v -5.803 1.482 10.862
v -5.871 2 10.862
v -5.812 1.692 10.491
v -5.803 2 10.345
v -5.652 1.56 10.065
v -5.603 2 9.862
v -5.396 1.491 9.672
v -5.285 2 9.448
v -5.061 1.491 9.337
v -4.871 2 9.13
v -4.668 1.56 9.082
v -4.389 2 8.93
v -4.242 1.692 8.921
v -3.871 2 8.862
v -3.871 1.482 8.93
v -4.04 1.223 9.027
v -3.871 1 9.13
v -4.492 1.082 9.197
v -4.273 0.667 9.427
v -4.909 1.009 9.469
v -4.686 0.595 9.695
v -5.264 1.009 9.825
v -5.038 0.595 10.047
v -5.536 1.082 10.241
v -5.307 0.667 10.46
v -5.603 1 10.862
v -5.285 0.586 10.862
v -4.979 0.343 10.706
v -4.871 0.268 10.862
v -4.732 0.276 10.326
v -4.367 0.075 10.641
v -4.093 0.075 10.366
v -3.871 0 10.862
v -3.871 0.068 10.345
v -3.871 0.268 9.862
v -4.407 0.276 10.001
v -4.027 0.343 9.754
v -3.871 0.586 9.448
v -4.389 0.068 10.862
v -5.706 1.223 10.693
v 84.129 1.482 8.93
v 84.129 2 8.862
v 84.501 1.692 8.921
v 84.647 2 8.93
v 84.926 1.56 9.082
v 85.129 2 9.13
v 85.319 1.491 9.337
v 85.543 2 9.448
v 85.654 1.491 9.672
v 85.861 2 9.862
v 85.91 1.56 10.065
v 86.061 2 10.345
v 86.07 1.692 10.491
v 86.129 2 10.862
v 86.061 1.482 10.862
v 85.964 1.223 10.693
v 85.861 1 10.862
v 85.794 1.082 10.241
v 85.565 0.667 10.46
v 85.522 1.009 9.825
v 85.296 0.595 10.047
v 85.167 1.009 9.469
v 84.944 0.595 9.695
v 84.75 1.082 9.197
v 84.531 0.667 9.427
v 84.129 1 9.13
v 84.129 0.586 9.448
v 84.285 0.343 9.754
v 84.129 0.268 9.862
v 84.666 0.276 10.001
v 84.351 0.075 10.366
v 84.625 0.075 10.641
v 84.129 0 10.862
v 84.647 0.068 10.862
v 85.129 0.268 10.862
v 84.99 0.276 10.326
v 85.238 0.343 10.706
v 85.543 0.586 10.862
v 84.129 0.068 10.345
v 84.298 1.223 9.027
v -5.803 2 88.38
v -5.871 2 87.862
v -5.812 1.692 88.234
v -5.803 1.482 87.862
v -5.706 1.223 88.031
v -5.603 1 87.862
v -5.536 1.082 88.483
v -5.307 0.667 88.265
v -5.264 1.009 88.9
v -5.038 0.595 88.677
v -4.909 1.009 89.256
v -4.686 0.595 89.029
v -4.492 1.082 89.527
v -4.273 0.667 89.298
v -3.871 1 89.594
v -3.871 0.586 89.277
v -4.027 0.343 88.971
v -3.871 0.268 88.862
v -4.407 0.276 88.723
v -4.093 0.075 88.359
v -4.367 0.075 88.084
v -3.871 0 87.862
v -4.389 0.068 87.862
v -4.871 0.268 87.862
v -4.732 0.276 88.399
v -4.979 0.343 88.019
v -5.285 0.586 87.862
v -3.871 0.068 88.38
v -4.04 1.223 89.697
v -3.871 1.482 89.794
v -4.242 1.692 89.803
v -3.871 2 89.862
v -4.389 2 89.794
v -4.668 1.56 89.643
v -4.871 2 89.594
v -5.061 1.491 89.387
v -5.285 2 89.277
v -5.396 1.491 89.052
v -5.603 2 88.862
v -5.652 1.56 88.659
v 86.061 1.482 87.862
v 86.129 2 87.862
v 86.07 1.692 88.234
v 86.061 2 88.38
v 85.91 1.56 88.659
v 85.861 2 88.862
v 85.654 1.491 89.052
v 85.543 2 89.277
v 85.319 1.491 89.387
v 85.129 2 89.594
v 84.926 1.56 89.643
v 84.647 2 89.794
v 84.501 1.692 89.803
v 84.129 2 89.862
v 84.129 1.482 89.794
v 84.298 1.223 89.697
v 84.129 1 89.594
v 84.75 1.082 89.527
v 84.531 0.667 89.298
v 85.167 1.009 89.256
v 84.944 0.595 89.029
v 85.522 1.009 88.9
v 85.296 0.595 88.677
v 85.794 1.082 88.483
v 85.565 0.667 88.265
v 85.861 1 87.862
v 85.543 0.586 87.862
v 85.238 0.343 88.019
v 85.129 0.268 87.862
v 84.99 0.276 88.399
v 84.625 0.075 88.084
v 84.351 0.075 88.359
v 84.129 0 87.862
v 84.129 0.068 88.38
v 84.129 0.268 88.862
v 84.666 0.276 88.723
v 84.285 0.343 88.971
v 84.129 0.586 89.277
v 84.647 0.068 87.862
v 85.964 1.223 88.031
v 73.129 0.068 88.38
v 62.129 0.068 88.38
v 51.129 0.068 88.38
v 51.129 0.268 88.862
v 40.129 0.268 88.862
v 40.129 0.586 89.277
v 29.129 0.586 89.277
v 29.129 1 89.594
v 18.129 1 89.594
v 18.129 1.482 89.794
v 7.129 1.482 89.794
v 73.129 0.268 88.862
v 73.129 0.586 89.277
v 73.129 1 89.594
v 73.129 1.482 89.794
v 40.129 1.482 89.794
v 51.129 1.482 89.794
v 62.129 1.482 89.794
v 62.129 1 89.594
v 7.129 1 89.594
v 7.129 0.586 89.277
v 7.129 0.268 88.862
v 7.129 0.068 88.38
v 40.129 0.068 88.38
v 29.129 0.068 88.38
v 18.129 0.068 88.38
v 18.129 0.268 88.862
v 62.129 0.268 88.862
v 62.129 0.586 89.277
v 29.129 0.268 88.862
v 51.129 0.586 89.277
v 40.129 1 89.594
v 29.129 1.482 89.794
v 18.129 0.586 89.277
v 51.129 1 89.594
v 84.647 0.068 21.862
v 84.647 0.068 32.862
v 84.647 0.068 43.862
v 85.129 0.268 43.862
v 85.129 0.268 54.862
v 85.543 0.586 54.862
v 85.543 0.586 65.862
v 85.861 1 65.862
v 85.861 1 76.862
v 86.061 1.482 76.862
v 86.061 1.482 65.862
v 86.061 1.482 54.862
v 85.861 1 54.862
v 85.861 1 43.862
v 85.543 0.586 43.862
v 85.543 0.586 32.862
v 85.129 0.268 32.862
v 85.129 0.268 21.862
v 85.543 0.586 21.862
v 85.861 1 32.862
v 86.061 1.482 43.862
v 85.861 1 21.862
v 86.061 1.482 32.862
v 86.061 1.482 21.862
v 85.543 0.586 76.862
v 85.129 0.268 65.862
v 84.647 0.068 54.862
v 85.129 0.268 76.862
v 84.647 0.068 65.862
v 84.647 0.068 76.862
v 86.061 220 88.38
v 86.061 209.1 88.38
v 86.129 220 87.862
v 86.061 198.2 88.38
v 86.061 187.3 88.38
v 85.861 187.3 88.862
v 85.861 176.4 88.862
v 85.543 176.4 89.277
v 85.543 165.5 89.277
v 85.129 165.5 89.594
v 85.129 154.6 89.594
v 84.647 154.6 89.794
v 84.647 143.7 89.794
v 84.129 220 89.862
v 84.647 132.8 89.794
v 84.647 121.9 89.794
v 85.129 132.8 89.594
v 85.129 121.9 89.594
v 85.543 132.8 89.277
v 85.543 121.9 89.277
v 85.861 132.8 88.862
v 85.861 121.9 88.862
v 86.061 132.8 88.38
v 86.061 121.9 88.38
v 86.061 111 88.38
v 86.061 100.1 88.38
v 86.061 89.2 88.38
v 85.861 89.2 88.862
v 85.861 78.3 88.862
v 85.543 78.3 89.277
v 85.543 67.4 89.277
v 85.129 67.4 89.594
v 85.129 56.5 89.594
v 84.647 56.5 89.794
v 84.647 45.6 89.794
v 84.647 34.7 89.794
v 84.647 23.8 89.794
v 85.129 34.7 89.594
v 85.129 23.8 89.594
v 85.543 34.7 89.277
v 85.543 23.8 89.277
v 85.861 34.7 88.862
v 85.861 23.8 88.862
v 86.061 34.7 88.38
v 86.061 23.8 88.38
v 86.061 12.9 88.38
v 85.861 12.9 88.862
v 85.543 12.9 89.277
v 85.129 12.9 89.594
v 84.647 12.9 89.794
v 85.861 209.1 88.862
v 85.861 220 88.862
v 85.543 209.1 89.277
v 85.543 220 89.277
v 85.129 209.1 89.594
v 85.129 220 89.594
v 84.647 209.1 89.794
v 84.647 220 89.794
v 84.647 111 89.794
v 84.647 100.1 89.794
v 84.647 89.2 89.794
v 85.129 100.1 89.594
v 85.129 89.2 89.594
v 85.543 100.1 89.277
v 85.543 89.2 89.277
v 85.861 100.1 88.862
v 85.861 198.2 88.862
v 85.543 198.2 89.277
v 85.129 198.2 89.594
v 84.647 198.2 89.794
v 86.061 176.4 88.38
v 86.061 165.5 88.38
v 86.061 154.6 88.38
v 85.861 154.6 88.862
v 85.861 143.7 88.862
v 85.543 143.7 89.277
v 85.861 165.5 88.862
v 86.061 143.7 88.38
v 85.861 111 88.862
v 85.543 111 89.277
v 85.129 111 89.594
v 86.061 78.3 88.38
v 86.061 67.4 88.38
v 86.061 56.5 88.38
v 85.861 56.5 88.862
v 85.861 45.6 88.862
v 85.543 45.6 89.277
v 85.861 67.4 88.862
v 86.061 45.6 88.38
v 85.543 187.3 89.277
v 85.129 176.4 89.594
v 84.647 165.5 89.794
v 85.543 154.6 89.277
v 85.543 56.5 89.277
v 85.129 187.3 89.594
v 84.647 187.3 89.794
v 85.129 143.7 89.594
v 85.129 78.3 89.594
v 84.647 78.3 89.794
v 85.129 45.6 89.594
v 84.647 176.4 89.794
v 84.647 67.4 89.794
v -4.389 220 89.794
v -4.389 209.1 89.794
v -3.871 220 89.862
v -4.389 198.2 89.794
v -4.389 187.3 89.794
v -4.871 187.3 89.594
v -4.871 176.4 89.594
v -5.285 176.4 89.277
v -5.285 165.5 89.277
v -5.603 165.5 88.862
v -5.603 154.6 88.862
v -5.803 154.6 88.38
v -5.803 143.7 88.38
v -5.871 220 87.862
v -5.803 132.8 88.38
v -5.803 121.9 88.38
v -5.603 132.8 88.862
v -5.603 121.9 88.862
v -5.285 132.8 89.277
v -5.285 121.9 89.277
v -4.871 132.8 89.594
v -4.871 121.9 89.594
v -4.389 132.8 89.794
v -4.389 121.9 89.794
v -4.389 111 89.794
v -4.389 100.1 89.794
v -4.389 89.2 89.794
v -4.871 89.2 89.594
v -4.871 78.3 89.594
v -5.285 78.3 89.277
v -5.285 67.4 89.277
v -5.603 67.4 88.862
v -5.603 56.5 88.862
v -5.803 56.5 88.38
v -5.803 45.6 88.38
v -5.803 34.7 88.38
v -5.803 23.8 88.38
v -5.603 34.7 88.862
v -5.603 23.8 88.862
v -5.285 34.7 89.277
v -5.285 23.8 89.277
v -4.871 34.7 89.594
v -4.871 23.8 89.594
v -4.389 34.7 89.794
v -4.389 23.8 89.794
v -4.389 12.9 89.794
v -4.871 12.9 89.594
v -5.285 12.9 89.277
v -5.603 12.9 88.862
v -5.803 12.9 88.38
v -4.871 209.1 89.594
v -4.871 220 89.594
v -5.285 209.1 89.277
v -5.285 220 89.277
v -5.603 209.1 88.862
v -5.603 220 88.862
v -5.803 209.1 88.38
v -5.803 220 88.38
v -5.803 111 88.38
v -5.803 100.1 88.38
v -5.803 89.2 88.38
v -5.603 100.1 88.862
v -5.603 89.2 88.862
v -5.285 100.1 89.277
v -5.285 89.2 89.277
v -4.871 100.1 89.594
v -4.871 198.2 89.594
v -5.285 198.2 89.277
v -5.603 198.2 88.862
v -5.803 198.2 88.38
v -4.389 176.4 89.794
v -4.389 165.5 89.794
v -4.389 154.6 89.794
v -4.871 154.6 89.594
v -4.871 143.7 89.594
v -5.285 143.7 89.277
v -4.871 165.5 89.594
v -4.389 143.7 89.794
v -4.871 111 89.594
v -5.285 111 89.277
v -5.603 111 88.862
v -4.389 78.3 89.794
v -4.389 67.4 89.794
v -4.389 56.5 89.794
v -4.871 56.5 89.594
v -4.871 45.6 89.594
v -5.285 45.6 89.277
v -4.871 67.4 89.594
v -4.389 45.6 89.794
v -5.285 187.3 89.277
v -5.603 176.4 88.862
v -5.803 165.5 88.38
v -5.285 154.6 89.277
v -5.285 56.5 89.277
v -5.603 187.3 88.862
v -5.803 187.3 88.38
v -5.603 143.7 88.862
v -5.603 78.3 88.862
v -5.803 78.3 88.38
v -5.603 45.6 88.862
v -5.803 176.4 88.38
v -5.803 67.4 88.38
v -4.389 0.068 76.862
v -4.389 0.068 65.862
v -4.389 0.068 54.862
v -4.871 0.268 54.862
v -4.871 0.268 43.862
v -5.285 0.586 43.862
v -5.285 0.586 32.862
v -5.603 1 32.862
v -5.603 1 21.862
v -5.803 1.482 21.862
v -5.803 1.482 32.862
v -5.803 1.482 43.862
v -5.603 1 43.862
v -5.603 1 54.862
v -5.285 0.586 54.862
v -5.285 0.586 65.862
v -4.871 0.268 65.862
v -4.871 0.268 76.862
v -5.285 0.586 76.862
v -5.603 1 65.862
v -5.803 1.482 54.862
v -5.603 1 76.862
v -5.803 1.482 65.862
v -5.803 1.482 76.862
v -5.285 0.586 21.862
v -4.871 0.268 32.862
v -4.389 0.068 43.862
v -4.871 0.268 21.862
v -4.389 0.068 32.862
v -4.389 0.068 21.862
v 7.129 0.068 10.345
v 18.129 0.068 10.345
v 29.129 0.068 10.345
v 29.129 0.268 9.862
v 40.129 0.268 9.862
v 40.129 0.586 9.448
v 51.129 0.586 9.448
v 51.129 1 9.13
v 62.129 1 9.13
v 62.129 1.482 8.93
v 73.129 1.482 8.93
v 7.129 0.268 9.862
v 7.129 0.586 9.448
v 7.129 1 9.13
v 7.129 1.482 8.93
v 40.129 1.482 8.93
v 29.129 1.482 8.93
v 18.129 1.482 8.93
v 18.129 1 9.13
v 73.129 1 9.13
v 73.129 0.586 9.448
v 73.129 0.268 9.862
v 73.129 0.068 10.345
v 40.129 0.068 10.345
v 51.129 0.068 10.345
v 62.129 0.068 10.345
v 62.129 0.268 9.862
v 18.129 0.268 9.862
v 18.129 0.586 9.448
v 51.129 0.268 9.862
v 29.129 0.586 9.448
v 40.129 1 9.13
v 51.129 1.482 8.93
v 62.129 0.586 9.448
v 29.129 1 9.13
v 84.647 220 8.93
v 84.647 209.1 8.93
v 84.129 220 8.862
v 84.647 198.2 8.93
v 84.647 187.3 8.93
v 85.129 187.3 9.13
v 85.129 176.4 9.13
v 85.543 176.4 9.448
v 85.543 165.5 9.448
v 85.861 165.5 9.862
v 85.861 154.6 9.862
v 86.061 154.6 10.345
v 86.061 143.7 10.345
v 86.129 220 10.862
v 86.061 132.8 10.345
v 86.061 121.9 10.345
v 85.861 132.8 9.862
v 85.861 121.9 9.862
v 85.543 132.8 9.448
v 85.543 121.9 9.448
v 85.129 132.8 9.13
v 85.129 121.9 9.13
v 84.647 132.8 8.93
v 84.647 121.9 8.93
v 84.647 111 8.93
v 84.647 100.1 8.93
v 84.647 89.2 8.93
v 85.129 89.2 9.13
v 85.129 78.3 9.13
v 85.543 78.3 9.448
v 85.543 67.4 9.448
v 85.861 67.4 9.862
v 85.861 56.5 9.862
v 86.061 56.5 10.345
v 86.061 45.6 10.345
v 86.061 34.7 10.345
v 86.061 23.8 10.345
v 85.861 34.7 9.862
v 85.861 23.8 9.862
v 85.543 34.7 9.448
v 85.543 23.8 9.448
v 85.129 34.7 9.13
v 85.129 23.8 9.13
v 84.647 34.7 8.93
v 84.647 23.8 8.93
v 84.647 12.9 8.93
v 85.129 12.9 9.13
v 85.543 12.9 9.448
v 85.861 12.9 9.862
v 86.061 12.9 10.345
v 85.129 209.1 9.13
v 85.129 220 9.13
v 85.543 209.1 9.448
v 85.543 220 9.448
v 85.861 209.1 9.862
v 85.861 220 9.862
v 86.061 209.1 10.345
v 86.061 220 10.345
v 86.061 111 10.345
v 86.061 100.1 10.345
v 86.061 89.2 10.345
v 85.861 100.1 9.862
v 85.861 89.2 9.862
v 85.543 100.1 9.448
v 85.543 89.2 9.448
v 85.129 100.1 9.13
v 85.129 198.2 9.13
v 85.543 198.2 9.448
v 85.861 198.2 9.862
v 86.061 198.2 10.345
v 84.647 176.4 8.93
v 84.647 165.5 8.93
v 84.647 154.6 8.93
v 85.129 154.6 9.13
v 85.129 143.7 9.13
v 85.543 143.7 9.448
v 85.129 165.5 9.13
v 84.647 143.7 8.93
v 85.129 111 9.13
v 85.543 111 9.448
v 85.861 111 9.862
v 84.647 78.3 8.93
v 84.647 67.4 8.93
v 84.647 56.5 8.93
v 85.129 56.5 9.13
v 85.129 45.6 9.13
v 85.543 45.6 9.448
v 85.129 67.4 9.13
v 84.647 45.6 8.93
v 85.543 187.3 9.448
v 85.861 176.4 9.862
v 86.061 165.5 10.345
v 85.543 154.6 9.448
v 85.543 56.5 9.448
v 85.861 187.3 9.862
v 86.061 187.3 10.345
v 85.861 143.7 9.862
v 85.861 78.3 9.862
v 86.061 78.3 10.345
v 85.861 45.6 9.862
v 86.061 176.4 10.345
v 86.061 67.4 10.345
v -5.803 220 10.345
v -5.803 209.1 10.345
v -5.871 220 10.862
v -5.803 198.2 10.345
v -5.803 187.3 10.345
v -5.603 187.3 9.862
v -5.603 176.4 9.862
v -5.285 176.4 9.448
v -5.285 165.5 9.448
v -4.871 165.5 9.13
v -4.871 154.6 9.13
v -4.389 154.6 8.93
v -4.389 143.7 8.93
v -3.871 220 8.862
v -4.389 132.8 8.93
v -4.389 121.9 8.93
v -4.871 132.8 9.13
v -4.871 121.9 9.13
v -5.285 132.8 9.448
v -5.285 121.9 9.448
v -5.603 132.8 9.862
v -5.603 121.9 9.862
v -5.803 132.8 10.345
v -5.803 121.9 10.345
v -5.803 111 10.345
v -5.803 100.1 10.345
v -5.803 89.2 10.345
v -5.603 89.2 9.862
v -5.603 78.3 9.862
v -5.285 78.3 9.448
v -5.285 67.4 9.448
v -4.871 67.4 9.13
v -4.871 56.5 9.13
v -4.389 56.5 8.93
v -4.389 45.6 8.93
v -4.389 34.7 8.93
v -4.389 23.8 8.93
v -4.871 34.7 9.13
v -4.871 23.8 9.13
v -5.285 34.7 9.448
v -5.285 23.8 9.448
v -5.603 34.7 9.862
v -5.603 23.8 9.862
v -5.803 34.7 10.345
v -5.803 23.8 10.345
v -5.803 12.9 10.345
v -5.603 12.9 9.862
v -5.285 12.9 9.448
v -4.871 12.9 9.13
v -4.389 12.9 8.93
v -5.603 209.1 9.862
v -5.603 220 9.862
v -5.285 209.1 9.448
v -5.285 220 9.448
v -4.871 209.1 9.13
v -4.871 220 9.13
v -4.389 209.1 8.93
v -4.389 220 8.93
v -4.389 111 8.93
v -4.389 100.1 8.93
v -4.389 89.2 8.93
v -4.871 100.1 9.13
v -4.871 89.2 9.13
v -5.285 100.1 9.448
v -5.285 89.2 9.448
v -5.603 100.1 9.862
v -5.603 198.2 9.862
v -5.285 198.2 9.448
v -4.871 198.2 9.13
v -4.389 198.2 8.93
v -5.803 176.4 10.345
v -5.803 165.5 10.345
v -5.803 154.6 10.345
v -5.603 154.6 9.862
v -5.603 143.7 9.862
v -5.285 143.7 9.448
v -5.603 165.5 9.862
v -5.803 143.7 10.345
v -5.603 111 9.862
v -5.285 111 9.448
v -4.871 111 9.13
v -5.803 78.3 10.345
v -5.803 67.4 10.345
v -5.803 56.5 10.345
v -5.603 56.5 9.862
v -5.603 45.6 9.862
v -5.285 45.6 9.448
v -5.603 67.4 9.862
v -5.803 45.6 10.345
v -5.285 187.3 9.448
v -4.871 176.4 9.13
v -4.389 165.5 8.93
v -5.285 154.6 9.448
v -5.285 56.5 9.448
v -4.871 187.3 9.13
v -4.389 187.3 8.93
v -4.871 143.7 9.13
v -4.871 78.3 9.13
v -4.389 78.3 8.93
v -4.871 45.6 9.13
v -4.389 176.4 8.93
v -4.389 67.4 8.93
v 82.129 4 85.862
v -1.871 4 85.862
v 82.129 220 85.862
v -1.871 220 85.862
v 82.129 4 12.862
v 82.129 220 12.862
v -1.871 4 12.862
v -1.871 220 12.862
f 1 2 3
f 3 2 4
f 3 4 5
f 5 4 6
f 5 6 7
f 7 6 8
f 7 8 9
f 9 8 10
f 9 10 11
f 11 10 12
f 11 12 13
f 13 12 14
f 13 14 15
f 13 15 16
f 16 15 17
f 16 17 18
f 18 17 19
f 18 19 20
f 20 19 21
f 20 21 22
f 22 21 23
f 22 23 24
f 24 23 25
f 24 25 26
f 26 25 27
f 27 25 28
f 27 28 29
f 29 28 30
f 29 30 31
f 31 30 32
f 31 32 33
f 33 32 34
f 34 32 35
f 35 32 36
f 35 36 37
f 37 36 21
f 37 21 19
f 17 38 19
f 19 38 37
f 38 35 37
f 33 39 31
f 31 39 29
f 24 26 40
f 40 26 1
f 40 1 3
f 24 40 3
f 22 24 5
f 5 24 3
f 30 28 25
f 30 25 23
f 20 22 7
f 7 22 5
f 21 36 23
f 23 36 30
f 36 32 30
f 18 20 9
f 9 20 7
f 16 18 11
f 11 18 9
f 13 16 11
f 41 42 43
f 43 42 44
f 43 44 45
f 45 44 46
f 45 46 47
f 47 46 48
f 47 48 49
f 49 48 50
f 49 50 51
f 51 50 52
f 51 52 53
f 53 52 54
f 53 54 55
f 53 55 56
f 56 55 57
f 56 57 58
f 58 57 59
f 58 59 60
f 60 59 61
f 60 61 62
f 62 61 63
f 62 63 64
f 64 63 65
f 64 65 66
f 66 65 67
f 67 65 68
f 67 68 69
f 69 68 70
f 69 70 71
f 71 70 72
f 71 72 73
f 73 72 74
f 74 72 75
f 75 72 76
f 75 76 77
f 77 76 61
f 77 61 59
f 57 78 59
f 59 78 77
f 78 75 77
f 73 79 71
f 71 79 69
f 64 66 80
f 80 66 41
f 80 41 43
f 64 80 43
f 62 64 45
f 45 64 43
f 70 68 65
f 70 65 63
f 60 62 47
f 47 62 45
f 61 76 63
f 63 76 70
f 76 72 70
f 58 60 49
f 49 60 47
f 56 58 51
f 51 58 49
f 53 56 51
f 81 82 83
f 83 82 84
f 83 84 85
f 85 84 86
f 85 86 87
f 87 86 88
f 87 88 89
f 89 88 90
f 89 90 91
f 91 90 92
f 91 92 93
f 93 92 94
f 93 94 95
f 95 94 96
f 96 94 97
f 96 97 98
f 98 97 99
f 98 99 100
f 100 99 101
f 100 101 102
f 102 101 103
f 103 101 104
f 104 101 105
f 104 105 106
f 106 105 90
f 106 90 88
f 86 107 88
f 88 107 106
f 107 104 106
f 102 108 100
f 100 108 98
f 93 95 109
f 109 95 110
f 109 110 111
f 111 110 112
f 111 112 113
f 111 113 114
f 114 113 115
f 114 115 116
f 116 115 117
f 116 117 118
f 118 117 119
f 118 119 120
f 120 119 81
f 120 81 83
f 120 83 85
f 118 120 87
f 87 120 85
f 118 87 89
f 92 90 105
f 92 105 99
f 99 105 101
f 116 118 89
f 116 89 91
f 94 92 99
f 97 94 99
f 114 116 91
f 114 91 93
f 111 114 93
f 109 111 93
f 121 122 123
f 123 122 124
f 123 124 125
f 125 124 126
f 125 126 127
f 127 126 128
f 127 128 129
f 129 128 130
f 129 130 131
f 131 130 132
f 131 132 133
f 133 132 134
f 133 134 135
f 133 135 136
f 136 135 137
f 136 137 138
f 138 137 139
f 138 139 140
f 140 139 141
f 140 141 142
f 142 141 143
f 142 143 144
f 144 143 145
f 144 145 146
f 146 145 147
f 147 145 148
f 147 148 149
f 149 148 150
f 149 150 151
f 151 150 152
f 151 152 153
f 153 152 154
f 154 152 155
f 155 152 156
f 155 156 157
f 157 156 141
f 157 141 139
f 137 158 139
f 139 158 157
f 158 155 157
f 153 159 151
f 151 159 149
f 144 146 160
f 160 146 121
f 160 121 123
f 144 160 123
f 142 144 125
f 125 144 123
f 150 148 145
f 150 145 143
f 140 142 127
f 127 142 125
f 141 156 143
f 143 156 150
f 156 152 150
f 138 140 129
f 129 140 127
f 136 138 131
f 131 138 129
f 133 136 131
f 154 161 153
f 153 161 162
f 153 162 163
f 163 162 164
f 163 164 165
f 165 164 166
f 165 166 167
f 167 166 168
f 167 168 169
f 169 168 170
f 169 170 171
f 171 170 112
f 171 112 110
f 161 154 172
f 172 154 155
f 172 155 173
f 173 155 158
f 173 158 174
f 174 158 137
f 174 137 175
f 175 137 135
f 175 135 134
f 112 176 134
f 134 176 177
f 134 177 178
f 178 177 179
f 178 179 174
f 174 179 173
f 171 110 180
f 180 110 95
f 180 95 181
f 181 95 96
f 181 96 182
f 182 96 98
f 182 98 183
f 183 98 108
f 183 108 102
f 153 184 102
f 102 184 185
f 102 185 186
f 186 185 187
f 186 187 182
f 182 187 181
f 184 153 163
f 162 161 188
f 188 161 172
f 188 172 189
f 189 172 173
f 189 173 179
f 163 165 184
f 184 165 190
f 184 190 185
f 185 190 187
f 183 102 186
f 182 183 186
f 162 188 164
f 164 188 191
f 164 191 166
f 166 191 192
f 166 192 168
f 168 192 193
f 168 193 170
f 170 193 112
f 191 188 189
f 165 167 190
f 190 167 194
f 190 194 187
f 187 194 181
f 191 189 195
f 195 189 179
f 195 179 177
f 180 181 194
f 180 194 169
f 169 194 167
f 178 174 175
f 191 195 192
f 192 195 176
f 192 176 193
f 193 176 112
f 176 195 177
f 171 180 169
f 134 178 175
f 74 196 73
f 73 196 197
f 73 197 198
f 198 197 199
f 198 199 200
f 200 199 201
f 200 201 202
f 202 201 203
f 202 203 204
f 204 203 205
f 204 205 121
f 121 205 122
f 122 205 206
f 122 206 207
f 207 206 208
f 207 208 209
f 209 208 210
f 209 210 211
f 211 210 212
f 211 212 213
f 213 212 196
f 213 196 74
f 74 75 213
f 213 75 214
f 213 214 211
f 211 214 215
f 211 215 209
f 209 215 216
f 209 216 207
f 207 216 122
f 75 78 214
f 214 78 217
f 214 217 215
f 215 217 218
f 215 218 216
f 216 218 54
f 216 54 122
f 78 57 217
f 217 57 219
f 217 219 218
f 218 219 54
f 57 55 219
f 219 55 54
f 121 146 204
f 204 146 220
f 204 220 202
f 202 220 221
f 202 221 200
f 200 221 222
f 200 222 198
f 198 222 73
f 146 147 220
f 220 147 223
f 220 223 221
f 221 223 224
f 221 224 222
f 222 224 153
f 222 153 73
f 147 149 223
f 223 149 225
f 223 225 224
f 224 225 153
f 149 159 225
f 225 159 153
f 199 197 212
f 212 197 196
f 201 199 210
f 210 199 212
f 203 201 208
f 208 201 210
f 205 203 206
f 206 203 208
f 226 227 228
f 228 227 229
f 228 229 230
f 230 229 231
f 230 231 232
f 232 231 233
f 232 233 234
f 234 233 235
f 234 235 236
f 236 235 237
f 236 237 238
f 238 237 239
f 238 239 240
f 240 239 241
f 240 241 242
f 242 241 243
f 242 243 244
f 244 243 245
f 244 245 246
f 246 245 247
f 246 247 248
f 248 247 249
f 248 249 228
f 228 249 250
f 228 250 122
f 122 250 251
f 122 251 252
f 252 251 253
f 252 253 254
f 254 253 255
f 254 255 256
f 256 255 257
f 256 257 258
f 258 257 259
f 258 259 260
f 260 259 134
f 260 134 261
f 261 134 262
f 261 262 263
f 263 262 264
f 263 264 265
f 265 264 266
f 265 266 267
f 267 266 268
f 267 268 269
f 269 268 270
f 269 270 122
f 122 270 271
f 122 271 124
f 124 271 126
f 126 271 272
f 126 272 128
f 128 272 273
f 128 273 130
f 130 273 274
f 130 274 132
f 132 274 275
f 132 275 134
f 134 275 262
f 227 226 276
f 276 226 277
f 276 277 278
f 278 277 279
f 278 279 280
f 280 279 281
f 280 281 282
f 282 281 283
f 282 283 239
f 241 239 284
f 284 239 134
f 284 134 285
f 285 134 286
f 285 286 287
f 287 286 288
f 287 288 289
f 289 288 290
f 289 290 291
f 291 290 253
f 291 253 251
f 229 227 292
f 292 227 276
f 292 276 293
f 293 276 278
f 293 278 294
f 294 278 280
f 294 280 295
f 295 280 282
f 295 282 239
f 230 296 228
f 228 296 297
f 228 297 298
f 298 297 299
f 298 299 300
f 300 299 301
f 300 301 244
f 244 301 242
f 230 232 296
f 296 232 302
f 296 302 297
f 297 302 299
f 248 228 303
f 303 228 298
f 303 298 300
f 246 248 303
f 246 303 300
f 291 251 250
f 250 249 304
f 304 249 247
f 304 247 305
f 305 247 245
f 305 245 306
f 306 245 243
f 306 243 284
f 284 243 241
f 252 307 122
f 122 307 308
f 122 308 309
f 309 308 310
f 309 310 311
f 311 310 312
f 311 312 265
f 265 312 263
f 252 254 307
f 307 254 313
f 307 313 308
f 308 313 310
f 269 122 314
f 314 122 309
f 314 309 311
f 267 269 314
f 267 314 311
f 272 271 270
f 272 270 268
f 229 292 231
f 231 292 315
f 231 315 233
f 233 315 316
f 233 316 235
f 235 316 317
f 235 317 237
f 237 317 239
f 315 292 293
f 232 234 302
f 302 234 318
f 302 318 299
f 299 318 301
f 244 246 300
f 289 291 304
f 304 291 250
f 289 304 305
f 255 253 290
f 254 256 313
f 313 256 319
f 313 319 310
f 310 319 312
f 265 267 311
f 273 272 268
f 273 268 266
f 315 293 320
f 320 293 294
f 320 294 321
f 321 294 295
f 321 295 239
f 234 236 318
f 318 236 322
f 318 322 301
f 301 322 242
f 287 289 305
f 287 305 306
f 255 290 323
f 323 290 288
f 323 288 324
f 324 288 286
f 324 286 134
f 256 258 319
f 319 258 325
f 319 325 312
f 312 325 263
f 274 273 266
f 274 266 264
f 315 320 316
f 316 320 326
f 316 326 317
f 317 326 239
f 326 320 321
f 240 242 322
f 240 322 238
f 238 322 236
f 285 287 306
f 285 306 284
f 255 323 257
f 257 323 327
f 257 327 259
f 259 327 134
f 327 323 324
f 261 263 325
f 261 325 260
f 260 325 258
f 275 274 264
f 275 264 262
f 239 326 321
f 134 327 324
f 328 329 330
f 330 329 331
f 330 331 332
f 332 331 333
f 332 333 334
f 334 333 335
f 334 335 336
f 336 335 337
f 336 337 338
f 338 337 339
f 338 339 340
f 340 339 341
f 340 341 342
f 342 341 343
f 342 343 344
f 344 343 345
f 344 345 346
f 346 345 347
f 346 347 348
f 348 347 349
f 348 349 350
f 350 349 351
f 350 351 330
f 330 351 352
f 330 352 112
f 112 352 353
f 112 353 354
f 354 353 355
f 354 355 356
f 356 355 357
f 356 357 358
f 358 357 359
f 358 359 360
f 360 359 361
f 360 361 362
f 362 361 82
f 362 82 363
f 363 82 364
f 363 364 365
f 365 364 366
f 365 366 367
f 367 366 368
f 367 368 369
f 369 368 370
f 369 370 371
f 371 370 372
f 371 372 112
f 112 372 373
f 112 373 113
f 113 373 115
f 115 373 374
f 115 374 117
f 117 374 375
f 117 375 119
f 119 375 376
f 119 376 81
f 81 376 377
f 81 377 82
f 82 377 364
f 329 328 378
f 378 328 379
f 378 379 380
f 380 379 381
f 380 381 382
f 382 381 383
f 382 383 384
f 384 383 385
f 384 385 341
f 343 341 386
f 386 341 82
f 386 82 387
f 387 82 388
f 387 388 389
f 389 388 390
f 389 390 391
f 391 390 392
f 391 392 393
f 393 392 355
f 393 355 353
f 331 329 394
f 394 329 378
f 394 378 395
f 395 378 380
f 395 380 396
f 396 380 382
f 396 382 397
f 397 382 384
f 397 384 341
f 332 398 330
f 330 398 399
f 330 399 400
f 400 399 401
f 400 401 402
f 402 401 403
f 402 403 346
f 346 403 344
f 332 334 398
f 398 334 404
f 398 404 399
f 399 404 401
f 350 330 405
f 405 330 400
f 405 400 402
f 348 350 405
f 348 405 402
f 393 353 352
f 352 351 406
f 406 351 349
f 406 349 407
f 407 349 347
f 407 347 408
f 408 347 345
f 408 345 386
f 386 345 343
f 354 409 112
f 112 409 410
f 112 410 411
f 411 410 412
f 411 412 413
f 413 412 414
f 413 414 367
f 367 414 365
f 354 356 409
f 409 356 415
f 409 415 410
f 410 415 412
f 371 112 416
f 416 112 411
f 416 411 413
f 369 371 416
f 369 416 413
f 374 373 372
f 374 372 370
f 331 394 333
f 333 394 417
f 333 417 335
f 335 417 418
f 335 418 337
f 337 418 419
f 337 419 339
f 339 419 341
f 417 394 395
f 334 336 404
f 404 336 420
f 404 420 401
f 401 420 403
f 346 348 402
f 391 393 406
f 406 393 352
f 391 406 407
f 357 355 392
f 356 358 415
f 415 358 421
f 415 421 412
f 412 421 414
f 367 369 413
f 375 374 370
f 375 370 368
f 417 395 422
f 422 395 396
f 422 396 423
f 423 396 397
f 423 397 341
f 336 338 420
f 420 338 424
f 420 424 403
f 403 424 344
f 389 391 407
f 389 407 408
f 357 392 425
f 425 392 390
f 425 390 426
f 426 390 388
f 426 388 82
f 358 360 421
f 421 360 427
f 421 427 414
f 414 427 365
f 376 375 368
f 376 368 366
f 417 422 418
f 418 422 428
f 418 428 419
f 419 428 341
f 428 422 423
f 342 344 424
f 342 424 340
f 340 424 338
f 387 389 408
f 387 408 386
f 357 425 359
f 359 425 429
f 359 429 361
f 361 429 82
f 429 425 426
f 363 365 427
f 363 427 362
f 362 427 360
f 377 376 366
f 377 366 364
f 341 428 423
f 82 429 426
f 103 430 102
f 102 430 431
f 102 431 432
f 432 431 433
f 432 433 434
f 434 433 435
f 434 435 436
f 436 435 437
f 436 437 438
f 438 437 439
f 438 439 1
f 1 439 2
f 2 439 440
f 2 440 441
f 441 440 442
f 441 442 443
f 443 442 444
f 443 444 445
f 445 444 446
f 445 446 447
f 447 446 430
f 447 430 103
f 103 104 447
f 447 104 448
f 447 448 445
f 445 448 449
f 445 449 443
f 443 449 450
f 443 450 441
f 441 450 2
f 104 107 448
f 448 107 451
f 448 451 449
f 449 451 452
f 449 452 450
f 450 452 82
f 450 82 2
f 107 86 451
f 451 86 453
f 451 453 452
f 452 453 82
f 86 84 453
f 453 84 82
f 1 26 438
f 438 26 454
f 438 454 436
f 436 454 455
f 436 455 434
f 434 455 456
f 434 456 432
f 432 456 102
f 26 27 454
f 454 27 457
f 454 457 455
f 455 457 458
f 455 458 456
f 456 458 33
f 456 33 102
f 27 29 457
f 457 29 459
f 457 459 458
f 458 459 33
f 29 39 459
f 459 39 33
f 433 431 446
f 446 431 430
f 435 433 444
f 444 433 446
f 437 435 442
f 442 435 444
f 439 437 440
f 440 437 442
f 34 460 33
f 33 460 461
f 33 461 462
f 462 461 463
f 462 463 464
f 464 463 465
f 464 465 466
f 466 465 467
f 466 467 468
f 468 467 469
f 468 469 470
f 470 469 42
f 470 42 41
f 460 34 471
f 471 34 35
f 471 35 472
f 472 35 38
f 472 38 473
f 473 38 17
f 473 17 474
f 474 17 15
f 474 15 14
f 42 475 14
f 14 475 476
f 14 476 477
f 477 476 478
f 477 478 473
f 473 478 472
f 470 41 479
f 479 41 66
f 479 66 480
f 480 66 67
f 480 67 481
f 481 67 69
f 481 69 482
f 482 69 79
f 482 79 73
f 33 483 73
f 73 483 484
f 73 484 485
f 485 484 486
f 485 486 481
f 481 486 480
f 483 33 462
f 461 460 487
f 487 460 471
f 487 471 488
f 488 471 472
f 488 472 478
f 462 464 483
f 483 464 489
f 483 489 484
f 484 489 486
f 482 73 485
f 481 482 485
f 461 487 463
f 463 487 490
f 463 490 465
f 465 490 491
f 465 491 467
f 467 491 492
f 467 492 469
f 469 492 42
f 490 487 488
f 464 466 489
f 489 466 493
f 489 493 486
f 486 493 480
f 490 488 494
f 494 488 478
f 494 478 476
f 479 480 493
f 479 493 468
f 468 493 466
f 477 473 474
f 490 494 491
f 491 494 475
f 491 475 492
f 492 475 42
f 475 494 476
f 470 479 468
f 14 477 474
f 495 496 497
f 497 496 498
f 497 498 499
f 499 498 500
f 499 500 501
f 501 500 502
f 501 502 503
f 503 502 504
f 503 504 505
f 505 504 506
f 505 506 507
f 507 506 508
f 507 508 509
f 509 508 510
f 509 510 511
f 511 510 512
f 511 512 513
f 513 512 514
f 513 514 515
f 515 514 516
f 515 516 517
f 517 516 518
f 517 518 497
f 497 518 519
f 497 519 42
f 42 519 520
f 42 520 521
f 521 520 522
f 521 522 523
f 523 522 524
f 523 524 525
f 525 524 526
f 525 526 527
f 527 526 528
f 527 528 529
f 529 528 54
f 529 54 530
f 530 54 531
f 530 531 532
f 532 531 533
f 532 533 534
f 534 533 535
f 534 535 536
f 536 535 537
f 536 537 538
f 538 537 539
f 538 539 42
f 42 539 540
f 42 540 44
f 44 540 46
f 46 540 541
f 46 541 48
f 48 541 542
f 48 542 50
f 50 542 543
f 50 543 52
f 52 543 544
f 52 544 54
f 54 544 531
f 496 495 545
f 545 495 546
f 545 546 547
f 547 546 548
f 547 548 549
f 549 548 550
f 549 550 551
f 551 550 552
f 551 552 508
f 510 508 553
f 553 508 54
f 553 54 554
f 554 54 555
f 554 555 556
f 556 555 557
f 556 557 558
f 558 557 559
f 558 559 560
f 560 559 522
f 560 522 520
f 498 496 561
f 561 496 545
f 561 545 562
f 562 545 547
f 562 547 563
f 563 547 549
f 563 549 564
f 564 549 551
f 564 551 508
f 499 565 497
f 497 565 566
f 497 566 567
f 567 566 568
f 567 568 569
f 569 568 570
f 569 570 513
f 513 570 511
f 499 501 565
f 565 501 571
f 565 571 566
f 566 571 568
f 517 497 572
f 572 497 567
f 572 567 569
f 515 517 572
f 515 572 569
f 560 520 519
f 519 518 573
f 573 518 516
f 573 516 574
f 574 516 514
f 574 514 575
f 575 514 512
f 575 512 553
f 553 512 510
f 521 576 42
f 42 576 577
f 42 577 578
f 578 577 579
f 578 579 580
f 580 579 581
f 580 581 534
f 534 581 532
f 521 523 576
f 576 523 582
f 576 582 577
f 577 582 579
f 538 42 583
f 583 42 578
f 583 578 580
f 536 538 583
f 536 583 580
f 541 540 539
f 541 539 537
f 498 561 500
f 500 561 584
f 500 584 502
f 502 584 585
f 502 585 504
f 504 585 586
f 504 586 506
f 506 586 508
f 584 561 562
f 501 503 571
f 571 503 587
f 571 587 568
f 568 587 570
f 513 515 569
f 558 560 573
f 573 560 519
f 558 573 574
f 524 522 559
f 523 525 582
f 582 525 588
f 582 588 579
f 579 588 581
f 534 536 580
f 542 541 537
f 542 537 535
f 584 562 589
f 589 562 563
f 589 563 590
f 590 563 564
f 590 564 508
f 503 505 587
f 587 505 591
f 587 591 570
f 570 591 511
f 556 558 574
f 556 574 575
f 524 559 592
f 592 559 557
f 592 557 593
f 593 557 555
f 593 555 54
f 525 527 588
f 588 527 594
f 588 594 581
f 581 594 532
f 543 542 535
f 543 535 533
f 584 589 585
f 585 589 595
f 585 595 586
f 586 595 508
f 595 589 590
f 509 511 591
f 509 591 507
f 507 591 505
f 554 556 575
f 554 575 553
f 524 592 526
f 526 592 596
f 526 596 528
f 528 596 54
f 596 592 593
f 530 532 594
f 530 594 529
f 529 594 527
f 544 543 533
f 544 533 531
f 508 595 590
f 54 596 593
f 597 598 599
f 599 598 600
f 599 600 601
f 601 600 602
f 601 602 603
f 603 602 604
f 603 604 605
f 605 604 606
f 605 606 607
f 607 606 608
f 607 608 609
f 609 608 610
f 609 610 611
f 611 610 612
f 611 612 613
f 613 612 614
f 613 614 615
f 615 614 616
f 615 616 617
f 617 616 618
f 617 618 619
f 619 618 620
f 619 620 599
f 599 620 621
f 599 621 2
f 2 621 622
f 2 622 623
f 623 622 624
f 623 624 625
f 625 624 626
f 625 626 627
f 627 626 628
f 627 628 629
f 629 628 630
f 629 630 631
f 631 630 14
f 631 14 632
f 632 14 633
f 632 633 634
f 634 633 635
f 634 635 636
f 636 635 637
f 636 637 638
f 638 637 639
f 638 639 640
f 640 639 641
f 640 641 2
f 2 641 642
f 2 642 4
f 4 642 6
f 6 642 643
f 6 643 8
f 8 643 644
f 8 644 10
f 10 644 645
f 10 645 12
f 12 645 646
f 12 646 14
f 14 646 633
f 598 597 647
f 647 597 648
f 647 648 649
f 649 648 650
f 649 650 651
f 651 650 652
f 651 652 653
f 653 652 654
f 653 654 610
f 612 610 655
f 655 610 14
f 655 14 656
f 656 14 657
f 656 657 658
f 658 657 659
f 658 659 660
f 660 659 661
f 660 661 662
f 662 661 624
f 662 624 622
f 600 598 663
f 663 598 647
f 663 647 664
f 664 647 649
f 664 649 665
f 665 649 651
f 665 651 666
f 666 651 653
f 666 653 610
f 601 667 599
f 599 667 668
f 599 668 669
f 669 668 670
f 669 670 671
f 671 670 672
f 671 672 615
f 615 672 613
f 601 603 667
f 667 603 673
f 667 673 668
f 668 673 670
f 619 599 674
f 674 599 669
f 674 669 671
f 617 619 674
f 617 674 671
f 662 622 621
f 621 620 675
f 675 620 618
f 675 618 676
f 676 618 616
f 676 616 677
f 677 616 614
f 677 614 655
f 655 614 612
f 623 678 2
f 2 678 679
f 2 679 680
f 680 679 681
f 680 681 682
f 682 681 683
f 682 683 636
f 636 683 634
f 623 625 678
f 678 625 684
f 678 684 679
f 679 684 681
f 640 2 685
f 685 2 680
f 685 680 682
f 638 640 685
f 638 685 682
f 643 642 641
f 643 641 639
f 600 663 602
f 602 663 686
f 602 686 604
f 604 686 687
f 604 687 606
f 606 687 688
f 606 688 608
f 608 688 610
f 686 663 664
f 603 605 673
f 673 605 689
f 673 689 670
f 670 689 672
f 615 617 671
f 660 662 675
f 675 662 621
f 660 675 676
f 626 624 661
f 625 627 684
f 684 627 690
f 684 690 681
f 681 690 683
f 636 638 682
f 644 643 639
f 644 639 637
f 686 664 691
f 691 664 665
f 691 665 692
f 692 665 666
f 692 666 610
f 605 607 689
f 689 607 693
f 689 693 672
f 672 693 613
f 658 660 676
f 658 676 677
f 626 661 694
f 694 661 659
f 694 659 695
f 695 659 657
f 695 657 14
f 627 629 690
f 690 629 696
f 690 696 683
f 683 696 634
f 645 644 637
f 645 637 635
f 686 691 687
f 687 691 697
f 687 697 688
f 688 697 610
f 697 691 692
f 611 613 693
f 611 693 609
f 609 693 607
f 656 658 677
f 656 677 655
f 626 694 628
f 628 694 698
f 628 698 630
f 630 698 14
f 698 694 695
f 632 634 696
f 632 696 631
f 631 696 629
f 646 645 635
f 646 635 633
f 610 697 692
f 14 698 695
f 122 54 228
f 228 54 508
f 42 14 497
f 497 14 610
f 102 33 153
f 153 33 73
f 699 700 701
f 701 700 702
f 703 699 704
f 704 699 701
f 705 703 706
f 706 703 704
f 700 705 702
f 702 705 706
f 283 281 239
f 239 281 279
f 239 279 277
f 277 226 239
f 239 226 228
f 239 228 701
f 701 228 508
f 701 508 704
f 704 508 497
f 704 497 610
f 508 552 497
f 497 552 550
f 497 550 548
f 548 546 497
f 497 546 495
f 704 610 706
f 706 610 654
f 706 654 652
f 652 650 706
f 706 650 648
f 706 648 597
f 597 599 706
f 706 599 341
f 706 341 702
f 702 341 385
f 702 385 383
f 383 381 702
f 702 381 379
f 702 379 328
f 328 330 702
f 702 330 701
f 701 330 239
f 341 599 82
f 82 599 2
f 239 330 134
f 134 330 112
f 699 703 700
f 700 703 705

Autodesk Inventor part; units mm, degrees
ref_plane "YZ Plane" through (0, 0, 0) normal (1, 0, 0) x (0, 1, 0)
ref_plane "XZ Plane" through (0, 0, 0) normal (0, 1, 0) x (-1, 0, 0)
ref_plane "XY Plane" through (0, 0, 0) normal (0, 0, 1) x (1, 0, 0)
sketch "Sketch1" plane through (0, 0, 0) normal (0, 1, 0) x (-1, 0, 0)
  point P0 (0, 0)
sketch "Sketch2" plane through (0, 0, 0) normal (0, 1, 0) x (-1, 0, 0)
  line L0 (5.8709, 8.8623) -> (-86.1291, 8.8623)
  line L1 (-86.1291, 8.8623) -> (-86.1291, 89.8623)
  line L2 (-86.1291, 89.8623) -> (5.8709, 89.8623)
  line L3 (5.8709, 89.8623) -> (5.8709, 8.8623)
  line L4 (1.8709, 85.8623) -> (-82.1291, 85.8623)
  line L5 (-82.1291, 85.8623) -> (-82.1291, 12.8623)
  line L6 (-82.1291, 12.8623) -> (1.8709, 12.8623)
  line L7 (1.8709, 12.8623) -> (1.8709, 85.8623)
  point P0 (0, 0)
  dimension "d0" = 92
  dimension "d1" = 81
  dimension "d4" = 84
  dimension "d5" = 73
extrude "Extrusion1" add sketch "Sketch2" along normal blind 4 contours L0 L1 L2 L3 | L7 L6 L5 L4
sketch "Sketch3" plane through (0, 4, 0) normal (0, 1, 0) x (1, 0, 0)
  line L0 (-5.8709, -89.8623) -> (86.1291, -89.8623) projected
  line L1 (-1.8709, -89.8623) -> (2.1291, -89.8623) construction
  line L2 (-1.8709, -85.8623) -> (82.1291, -85.8623)
  line L3 (82.1291, -85.8623) -> (82.1291, -12.8623)
  line L4 (82.1291, -12.8623) -> (-1.8709, -12.8623)
  line L5 (-1.8709, -12.8623) -> (-1.8709, -85.8623)
  line L6 (86.1291, -89.8623) -> (86.1291, -8.8623) projected
  line L7 (-5.8709, -89.8623) -> (86.1291, -89.8623)
  line L8 (86.1291, -89.8623) -> (86.1291, -8.8623)
  line L9 (86.1291, -8.8623) -> (-5.8709, -8.8623)
  line L10 (-5.8709, -8.8623) -> (-5.8709, -89.8623)
  point P0 (0, 0)
  dimension "d9" = 4
  dimension "d11" = 84
  dimension "d12" = 73
extrude "Extrusion2" add sketch "Sketch3" along normal blind 216
fillet "Fillet1" radius 2 8 edges at (86.1291, 110, 89.8623) (86.1291, 110, 8.8623) (-5.8709, 110, 8.8623) (-5.8709, 110, 89.8623) (40.1291, 0, 89.8623) (86.1291, 0, 49.3623) (40.1291, 0, 8.8623) (-5.8709, 0, 49.3623)
properties part number "Battery Box Top_3DPrint"
